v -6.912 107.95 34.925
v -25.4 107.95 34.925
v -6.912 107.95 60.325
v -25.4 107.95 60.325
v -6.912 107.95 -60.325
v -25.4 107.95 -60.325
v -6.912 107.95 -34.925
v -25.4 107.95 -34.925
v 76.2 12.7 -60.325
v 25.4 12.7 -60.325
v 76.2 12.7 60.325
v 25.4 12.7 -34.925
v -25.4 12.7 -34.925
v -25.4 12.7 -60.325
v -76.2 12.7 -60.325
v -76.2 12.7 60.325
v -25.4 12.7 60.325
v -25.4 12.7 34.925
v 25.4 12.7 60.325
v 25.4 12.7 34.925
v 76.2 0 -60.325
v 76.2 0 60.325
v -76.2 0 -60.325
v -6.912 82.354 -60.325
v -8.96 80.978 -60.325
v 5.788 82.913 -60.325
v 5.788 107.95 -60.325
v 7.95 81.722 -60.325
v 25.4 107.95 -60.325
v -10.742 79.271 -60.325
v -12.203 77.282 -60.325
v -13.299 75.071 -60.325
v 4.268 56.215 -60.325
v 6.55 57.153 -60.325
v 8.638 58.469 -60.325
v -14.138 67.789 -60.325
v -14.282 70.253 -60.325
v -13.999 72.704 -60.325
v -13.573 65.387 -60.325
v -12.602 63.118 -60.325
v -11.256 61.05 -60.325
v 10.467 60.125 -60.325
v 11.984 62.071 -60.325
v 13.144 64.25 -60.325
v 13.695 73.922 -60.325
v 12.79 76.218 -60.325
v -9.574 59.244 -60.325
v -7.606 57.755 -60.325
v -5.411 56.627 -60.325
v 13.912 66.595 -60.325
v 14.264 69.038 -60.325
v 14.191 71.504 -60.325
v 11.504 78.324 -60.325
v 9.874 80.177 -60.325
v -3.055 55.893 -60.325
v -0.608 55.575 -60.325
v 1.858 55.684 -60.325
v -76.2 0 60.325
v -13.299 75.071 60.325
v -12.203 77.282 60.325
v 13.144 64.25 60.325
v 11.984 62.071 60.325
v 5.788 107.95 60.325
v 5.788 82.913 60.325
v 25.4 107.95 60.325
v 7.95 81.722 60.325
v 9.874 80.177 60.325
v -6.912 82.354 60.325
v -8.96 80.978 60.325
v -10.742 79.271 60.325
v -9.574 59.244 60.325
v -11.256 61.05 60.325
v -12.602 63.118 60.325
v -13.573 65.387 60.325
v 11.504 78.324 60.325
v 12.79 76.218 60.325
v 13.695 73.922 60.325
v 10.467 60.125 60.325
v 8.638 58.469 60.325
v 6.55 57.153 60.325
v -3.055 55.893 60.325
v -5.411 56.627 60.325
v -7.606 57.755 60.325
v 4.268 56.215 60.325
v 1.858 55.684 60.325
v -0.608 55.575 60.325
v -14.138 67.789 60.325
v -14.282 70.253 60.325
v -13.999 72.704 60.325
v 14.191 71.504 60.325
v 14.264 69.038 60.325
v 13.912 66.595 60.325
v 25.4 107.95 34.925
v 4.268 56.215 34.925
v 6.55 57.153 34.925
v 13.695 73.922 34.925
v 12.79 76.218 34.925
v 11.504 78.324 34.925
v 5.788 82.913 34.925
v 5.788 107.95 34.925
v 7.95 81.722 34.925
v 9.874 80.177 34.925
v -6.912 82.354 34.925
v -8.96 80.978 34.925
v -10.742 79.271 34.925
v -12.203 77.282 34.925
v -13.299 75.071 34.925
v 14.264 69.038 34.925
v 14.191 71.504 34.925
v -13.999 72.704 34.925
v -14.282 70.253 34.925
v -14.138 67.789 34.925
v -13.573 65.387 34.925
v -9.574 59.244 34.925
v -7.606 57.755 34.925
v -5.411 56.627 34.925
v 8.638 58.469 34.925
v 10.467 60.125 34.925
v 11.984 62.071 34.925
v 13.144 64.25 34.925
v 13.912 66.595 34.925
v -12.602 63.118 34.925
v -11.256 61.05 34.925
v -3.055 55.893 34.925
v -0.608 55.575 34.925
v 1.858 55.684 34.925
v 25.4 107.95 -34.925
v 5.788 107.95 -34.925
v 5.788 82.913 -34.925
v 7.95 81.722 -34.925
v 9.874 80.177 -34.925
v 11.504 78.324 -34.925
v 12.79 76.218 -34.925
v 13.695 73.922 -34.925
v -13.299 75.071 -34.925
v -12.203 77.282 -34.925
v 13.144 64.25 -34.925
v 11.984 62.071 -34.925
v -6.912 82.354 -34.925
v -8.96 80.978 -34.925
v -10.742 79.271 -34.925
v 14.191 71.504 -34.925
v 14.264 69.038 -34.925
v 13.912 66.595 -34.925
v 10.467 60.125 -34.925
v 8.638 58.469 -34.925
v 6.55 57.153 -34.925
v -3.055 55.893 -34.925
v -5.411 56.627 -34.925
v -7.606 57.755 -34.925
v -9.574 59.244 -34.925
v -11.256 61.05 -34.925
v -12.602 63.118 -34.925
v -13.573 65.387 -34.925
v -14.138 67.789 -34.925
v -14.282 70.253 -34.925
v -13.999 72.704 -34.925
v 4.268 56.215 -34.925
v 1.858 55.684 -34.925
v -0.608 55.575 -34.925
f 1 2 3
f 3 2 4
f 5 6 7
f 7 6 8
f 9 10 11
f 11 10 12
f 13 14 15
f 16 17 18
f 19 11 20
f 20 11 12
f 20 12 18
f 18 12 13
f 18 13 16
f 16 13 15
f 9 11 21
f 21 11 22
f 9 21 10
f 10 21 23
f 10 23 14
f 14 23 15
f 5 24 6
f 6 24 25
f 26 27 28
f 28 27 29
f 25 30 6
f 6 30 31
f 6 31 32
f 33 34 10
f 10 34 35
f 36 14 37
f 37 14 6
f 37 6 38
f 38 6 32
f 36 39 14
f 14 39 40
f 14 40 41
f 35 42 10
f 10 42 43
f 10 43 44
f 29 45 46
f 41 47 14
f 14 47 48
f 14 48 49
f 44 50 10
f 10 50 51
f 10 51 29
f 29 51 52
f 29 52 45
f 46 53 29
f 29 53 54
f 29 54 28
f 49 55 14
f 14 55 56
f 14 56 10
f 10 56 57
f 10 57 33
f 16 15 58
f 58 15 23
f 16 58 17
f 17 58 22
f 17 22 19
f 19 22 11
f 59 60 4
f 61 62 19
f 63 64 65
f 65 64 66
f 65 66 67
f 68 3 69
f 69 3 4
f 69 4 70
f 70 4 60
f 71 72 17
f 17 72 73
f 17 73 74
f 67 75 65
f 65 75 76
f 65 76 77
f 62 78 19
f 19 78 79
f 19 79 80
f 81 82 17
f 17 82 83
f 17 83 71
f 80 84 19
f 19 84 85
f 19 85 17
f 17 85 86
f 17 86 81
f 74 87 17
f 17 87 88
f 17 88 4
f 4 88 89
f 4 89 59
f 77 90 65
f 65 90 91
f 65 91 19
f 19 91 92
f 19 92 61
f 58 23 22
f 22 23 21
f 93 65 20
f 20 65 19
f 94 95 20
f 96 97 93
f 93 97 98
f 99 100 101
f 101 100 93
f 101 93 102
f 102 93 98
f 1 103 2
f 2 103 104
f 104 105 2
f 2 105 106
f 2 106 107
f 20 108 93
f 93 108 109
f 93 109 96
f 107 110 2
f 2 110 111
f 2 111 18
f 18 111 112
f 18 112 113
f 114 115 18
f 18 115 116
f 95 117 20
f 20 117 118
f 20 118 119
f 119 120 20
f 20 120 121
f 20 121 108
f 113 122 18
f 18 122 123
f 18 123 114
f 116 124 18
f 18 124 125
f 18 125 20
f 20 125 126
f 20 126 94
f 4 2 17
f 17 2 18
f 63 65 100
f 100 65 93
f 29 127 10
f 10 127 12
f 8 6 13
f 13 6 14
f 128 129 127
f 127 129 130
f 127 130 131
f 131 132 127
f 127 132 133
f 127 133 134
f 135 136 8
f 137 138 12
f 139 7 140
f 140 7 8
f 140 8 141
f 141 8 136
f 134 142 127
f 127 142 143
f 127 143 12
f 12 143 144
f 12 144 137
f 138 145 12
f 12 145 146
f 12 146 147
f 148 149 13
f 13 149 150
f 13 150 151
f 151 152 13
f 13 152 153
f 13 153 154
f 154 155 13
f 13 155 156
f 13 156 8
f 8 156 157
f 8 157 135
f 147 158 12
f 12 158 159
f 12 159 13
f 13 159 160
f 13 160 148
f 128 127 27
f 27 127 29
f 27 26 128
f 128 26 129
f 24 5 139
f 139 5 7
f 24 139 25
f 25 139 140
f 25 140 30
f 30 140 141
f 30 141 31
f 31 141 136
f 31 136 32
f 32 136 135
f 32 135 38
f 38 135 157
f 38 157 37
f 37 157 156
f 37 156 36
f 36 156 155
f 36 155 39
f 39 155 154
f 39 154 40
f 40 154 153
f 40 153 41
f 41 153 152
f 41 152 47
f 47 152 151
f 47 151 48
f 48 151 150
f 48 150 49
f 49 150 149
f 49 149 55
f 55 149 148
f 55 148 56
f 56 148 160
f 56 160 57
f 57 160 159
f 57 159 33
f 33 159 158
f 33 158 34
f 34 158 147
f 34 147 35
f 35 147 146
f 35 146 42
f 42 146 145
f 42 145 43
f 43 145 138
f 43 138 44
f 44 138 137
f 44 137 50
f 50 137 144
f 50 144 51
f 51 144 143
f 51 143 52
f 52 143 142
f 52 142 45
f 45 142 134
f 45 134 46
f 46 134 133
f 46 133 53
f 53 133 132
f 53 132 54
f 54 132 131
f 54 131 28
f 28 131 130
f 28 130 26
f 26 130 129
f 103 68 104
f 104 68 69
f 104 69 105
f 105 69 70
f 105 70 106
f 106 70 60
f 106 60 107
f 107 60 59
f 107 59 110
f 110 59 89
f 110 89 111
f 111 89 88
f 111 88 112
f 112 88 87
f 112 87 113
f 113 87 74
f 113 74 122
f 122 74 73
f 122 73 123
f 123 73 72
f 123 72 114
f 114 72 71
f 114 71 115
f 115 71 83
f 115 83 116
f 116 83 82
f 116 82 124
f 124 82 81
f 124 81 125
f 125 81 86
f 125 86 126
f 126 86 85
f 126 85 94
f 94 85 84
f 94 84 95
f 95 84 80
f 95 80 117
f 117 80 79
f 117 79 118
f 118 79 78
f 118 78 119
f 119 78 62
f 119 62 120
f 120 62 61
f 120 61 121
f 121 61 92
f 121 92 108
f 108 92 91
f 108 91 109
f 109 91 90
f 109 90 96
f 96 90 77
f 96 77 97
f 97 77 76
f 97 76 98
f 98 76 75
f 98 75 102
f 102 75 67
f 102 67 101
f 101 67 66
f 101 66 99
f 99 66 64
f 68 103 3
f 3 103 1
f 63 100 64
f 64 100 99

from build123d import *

# Parameters (mm, degrees)
SKETCH2_W           = 152.4
SKETCH2_H           = 120.65
BOSS_EXTRUDE2_DEPTH = 12.7
SKETCH4_W           = 50.8
SKETCH4_H           = 25.4
BOSS_EXTRUDE3_DEPTH = 95.25
CUT_EXTRUDE1_DEPTH  = 179.930335606


with BuildPart() as part:
    # Sketch2 → Boss-Extrude2 (new body)
    with BuildSketch(Plane(origin=(0, 0, 0), x_dir=(1, 0, 0), z_dir=(0, 1, 0))):
        Rectangle(SKETCH2_W, SKETCH2_H)
    extrude(amount=BOSS_EXTRUDE2_DEPTH)

    # Sketch4 → Boss-Extrude3 (add)
    with BuildSketch(Plane(origin=(0, 12.7, 0), x_dir=(1, 0, 0), z_dir=(0, 1, 0))):
        with Locations((0, -47.625)):
            Rectangle(SKETCH4_W, SKETCH4_H)
    boss_extrude3 = extrude(amount=BOSS_EXTRUDE3_DEPTH)

    # Mirror1: Boss-Extrude3 across plane
    add(boss_extrude3.mirror(Plane.XY))

    # Sketch6 → Cut-Extrude1 (cut, through all)
    with BuildSketch(Plane.XY.offset(60.325)):
        with BuildLine():
            Line((-6.911847883, 107.95), (5.788152117, 107.95))
            Line((5.788152117, 107.95), (5.788152117, 82.912540003))
            ThreePointArc((5.788152117, 82.912540003), (0.627347046, 55.576279674), (-6.911847883, 82.354359843))
            Line((-6.911847883, 82.354359843), (-6.911847883, 107.95))
        make_face()
    extrude(amount=-CUT_EXTRUDE1_DEPTH, mode=Mode.SUBTRACT)


solid = part.part
